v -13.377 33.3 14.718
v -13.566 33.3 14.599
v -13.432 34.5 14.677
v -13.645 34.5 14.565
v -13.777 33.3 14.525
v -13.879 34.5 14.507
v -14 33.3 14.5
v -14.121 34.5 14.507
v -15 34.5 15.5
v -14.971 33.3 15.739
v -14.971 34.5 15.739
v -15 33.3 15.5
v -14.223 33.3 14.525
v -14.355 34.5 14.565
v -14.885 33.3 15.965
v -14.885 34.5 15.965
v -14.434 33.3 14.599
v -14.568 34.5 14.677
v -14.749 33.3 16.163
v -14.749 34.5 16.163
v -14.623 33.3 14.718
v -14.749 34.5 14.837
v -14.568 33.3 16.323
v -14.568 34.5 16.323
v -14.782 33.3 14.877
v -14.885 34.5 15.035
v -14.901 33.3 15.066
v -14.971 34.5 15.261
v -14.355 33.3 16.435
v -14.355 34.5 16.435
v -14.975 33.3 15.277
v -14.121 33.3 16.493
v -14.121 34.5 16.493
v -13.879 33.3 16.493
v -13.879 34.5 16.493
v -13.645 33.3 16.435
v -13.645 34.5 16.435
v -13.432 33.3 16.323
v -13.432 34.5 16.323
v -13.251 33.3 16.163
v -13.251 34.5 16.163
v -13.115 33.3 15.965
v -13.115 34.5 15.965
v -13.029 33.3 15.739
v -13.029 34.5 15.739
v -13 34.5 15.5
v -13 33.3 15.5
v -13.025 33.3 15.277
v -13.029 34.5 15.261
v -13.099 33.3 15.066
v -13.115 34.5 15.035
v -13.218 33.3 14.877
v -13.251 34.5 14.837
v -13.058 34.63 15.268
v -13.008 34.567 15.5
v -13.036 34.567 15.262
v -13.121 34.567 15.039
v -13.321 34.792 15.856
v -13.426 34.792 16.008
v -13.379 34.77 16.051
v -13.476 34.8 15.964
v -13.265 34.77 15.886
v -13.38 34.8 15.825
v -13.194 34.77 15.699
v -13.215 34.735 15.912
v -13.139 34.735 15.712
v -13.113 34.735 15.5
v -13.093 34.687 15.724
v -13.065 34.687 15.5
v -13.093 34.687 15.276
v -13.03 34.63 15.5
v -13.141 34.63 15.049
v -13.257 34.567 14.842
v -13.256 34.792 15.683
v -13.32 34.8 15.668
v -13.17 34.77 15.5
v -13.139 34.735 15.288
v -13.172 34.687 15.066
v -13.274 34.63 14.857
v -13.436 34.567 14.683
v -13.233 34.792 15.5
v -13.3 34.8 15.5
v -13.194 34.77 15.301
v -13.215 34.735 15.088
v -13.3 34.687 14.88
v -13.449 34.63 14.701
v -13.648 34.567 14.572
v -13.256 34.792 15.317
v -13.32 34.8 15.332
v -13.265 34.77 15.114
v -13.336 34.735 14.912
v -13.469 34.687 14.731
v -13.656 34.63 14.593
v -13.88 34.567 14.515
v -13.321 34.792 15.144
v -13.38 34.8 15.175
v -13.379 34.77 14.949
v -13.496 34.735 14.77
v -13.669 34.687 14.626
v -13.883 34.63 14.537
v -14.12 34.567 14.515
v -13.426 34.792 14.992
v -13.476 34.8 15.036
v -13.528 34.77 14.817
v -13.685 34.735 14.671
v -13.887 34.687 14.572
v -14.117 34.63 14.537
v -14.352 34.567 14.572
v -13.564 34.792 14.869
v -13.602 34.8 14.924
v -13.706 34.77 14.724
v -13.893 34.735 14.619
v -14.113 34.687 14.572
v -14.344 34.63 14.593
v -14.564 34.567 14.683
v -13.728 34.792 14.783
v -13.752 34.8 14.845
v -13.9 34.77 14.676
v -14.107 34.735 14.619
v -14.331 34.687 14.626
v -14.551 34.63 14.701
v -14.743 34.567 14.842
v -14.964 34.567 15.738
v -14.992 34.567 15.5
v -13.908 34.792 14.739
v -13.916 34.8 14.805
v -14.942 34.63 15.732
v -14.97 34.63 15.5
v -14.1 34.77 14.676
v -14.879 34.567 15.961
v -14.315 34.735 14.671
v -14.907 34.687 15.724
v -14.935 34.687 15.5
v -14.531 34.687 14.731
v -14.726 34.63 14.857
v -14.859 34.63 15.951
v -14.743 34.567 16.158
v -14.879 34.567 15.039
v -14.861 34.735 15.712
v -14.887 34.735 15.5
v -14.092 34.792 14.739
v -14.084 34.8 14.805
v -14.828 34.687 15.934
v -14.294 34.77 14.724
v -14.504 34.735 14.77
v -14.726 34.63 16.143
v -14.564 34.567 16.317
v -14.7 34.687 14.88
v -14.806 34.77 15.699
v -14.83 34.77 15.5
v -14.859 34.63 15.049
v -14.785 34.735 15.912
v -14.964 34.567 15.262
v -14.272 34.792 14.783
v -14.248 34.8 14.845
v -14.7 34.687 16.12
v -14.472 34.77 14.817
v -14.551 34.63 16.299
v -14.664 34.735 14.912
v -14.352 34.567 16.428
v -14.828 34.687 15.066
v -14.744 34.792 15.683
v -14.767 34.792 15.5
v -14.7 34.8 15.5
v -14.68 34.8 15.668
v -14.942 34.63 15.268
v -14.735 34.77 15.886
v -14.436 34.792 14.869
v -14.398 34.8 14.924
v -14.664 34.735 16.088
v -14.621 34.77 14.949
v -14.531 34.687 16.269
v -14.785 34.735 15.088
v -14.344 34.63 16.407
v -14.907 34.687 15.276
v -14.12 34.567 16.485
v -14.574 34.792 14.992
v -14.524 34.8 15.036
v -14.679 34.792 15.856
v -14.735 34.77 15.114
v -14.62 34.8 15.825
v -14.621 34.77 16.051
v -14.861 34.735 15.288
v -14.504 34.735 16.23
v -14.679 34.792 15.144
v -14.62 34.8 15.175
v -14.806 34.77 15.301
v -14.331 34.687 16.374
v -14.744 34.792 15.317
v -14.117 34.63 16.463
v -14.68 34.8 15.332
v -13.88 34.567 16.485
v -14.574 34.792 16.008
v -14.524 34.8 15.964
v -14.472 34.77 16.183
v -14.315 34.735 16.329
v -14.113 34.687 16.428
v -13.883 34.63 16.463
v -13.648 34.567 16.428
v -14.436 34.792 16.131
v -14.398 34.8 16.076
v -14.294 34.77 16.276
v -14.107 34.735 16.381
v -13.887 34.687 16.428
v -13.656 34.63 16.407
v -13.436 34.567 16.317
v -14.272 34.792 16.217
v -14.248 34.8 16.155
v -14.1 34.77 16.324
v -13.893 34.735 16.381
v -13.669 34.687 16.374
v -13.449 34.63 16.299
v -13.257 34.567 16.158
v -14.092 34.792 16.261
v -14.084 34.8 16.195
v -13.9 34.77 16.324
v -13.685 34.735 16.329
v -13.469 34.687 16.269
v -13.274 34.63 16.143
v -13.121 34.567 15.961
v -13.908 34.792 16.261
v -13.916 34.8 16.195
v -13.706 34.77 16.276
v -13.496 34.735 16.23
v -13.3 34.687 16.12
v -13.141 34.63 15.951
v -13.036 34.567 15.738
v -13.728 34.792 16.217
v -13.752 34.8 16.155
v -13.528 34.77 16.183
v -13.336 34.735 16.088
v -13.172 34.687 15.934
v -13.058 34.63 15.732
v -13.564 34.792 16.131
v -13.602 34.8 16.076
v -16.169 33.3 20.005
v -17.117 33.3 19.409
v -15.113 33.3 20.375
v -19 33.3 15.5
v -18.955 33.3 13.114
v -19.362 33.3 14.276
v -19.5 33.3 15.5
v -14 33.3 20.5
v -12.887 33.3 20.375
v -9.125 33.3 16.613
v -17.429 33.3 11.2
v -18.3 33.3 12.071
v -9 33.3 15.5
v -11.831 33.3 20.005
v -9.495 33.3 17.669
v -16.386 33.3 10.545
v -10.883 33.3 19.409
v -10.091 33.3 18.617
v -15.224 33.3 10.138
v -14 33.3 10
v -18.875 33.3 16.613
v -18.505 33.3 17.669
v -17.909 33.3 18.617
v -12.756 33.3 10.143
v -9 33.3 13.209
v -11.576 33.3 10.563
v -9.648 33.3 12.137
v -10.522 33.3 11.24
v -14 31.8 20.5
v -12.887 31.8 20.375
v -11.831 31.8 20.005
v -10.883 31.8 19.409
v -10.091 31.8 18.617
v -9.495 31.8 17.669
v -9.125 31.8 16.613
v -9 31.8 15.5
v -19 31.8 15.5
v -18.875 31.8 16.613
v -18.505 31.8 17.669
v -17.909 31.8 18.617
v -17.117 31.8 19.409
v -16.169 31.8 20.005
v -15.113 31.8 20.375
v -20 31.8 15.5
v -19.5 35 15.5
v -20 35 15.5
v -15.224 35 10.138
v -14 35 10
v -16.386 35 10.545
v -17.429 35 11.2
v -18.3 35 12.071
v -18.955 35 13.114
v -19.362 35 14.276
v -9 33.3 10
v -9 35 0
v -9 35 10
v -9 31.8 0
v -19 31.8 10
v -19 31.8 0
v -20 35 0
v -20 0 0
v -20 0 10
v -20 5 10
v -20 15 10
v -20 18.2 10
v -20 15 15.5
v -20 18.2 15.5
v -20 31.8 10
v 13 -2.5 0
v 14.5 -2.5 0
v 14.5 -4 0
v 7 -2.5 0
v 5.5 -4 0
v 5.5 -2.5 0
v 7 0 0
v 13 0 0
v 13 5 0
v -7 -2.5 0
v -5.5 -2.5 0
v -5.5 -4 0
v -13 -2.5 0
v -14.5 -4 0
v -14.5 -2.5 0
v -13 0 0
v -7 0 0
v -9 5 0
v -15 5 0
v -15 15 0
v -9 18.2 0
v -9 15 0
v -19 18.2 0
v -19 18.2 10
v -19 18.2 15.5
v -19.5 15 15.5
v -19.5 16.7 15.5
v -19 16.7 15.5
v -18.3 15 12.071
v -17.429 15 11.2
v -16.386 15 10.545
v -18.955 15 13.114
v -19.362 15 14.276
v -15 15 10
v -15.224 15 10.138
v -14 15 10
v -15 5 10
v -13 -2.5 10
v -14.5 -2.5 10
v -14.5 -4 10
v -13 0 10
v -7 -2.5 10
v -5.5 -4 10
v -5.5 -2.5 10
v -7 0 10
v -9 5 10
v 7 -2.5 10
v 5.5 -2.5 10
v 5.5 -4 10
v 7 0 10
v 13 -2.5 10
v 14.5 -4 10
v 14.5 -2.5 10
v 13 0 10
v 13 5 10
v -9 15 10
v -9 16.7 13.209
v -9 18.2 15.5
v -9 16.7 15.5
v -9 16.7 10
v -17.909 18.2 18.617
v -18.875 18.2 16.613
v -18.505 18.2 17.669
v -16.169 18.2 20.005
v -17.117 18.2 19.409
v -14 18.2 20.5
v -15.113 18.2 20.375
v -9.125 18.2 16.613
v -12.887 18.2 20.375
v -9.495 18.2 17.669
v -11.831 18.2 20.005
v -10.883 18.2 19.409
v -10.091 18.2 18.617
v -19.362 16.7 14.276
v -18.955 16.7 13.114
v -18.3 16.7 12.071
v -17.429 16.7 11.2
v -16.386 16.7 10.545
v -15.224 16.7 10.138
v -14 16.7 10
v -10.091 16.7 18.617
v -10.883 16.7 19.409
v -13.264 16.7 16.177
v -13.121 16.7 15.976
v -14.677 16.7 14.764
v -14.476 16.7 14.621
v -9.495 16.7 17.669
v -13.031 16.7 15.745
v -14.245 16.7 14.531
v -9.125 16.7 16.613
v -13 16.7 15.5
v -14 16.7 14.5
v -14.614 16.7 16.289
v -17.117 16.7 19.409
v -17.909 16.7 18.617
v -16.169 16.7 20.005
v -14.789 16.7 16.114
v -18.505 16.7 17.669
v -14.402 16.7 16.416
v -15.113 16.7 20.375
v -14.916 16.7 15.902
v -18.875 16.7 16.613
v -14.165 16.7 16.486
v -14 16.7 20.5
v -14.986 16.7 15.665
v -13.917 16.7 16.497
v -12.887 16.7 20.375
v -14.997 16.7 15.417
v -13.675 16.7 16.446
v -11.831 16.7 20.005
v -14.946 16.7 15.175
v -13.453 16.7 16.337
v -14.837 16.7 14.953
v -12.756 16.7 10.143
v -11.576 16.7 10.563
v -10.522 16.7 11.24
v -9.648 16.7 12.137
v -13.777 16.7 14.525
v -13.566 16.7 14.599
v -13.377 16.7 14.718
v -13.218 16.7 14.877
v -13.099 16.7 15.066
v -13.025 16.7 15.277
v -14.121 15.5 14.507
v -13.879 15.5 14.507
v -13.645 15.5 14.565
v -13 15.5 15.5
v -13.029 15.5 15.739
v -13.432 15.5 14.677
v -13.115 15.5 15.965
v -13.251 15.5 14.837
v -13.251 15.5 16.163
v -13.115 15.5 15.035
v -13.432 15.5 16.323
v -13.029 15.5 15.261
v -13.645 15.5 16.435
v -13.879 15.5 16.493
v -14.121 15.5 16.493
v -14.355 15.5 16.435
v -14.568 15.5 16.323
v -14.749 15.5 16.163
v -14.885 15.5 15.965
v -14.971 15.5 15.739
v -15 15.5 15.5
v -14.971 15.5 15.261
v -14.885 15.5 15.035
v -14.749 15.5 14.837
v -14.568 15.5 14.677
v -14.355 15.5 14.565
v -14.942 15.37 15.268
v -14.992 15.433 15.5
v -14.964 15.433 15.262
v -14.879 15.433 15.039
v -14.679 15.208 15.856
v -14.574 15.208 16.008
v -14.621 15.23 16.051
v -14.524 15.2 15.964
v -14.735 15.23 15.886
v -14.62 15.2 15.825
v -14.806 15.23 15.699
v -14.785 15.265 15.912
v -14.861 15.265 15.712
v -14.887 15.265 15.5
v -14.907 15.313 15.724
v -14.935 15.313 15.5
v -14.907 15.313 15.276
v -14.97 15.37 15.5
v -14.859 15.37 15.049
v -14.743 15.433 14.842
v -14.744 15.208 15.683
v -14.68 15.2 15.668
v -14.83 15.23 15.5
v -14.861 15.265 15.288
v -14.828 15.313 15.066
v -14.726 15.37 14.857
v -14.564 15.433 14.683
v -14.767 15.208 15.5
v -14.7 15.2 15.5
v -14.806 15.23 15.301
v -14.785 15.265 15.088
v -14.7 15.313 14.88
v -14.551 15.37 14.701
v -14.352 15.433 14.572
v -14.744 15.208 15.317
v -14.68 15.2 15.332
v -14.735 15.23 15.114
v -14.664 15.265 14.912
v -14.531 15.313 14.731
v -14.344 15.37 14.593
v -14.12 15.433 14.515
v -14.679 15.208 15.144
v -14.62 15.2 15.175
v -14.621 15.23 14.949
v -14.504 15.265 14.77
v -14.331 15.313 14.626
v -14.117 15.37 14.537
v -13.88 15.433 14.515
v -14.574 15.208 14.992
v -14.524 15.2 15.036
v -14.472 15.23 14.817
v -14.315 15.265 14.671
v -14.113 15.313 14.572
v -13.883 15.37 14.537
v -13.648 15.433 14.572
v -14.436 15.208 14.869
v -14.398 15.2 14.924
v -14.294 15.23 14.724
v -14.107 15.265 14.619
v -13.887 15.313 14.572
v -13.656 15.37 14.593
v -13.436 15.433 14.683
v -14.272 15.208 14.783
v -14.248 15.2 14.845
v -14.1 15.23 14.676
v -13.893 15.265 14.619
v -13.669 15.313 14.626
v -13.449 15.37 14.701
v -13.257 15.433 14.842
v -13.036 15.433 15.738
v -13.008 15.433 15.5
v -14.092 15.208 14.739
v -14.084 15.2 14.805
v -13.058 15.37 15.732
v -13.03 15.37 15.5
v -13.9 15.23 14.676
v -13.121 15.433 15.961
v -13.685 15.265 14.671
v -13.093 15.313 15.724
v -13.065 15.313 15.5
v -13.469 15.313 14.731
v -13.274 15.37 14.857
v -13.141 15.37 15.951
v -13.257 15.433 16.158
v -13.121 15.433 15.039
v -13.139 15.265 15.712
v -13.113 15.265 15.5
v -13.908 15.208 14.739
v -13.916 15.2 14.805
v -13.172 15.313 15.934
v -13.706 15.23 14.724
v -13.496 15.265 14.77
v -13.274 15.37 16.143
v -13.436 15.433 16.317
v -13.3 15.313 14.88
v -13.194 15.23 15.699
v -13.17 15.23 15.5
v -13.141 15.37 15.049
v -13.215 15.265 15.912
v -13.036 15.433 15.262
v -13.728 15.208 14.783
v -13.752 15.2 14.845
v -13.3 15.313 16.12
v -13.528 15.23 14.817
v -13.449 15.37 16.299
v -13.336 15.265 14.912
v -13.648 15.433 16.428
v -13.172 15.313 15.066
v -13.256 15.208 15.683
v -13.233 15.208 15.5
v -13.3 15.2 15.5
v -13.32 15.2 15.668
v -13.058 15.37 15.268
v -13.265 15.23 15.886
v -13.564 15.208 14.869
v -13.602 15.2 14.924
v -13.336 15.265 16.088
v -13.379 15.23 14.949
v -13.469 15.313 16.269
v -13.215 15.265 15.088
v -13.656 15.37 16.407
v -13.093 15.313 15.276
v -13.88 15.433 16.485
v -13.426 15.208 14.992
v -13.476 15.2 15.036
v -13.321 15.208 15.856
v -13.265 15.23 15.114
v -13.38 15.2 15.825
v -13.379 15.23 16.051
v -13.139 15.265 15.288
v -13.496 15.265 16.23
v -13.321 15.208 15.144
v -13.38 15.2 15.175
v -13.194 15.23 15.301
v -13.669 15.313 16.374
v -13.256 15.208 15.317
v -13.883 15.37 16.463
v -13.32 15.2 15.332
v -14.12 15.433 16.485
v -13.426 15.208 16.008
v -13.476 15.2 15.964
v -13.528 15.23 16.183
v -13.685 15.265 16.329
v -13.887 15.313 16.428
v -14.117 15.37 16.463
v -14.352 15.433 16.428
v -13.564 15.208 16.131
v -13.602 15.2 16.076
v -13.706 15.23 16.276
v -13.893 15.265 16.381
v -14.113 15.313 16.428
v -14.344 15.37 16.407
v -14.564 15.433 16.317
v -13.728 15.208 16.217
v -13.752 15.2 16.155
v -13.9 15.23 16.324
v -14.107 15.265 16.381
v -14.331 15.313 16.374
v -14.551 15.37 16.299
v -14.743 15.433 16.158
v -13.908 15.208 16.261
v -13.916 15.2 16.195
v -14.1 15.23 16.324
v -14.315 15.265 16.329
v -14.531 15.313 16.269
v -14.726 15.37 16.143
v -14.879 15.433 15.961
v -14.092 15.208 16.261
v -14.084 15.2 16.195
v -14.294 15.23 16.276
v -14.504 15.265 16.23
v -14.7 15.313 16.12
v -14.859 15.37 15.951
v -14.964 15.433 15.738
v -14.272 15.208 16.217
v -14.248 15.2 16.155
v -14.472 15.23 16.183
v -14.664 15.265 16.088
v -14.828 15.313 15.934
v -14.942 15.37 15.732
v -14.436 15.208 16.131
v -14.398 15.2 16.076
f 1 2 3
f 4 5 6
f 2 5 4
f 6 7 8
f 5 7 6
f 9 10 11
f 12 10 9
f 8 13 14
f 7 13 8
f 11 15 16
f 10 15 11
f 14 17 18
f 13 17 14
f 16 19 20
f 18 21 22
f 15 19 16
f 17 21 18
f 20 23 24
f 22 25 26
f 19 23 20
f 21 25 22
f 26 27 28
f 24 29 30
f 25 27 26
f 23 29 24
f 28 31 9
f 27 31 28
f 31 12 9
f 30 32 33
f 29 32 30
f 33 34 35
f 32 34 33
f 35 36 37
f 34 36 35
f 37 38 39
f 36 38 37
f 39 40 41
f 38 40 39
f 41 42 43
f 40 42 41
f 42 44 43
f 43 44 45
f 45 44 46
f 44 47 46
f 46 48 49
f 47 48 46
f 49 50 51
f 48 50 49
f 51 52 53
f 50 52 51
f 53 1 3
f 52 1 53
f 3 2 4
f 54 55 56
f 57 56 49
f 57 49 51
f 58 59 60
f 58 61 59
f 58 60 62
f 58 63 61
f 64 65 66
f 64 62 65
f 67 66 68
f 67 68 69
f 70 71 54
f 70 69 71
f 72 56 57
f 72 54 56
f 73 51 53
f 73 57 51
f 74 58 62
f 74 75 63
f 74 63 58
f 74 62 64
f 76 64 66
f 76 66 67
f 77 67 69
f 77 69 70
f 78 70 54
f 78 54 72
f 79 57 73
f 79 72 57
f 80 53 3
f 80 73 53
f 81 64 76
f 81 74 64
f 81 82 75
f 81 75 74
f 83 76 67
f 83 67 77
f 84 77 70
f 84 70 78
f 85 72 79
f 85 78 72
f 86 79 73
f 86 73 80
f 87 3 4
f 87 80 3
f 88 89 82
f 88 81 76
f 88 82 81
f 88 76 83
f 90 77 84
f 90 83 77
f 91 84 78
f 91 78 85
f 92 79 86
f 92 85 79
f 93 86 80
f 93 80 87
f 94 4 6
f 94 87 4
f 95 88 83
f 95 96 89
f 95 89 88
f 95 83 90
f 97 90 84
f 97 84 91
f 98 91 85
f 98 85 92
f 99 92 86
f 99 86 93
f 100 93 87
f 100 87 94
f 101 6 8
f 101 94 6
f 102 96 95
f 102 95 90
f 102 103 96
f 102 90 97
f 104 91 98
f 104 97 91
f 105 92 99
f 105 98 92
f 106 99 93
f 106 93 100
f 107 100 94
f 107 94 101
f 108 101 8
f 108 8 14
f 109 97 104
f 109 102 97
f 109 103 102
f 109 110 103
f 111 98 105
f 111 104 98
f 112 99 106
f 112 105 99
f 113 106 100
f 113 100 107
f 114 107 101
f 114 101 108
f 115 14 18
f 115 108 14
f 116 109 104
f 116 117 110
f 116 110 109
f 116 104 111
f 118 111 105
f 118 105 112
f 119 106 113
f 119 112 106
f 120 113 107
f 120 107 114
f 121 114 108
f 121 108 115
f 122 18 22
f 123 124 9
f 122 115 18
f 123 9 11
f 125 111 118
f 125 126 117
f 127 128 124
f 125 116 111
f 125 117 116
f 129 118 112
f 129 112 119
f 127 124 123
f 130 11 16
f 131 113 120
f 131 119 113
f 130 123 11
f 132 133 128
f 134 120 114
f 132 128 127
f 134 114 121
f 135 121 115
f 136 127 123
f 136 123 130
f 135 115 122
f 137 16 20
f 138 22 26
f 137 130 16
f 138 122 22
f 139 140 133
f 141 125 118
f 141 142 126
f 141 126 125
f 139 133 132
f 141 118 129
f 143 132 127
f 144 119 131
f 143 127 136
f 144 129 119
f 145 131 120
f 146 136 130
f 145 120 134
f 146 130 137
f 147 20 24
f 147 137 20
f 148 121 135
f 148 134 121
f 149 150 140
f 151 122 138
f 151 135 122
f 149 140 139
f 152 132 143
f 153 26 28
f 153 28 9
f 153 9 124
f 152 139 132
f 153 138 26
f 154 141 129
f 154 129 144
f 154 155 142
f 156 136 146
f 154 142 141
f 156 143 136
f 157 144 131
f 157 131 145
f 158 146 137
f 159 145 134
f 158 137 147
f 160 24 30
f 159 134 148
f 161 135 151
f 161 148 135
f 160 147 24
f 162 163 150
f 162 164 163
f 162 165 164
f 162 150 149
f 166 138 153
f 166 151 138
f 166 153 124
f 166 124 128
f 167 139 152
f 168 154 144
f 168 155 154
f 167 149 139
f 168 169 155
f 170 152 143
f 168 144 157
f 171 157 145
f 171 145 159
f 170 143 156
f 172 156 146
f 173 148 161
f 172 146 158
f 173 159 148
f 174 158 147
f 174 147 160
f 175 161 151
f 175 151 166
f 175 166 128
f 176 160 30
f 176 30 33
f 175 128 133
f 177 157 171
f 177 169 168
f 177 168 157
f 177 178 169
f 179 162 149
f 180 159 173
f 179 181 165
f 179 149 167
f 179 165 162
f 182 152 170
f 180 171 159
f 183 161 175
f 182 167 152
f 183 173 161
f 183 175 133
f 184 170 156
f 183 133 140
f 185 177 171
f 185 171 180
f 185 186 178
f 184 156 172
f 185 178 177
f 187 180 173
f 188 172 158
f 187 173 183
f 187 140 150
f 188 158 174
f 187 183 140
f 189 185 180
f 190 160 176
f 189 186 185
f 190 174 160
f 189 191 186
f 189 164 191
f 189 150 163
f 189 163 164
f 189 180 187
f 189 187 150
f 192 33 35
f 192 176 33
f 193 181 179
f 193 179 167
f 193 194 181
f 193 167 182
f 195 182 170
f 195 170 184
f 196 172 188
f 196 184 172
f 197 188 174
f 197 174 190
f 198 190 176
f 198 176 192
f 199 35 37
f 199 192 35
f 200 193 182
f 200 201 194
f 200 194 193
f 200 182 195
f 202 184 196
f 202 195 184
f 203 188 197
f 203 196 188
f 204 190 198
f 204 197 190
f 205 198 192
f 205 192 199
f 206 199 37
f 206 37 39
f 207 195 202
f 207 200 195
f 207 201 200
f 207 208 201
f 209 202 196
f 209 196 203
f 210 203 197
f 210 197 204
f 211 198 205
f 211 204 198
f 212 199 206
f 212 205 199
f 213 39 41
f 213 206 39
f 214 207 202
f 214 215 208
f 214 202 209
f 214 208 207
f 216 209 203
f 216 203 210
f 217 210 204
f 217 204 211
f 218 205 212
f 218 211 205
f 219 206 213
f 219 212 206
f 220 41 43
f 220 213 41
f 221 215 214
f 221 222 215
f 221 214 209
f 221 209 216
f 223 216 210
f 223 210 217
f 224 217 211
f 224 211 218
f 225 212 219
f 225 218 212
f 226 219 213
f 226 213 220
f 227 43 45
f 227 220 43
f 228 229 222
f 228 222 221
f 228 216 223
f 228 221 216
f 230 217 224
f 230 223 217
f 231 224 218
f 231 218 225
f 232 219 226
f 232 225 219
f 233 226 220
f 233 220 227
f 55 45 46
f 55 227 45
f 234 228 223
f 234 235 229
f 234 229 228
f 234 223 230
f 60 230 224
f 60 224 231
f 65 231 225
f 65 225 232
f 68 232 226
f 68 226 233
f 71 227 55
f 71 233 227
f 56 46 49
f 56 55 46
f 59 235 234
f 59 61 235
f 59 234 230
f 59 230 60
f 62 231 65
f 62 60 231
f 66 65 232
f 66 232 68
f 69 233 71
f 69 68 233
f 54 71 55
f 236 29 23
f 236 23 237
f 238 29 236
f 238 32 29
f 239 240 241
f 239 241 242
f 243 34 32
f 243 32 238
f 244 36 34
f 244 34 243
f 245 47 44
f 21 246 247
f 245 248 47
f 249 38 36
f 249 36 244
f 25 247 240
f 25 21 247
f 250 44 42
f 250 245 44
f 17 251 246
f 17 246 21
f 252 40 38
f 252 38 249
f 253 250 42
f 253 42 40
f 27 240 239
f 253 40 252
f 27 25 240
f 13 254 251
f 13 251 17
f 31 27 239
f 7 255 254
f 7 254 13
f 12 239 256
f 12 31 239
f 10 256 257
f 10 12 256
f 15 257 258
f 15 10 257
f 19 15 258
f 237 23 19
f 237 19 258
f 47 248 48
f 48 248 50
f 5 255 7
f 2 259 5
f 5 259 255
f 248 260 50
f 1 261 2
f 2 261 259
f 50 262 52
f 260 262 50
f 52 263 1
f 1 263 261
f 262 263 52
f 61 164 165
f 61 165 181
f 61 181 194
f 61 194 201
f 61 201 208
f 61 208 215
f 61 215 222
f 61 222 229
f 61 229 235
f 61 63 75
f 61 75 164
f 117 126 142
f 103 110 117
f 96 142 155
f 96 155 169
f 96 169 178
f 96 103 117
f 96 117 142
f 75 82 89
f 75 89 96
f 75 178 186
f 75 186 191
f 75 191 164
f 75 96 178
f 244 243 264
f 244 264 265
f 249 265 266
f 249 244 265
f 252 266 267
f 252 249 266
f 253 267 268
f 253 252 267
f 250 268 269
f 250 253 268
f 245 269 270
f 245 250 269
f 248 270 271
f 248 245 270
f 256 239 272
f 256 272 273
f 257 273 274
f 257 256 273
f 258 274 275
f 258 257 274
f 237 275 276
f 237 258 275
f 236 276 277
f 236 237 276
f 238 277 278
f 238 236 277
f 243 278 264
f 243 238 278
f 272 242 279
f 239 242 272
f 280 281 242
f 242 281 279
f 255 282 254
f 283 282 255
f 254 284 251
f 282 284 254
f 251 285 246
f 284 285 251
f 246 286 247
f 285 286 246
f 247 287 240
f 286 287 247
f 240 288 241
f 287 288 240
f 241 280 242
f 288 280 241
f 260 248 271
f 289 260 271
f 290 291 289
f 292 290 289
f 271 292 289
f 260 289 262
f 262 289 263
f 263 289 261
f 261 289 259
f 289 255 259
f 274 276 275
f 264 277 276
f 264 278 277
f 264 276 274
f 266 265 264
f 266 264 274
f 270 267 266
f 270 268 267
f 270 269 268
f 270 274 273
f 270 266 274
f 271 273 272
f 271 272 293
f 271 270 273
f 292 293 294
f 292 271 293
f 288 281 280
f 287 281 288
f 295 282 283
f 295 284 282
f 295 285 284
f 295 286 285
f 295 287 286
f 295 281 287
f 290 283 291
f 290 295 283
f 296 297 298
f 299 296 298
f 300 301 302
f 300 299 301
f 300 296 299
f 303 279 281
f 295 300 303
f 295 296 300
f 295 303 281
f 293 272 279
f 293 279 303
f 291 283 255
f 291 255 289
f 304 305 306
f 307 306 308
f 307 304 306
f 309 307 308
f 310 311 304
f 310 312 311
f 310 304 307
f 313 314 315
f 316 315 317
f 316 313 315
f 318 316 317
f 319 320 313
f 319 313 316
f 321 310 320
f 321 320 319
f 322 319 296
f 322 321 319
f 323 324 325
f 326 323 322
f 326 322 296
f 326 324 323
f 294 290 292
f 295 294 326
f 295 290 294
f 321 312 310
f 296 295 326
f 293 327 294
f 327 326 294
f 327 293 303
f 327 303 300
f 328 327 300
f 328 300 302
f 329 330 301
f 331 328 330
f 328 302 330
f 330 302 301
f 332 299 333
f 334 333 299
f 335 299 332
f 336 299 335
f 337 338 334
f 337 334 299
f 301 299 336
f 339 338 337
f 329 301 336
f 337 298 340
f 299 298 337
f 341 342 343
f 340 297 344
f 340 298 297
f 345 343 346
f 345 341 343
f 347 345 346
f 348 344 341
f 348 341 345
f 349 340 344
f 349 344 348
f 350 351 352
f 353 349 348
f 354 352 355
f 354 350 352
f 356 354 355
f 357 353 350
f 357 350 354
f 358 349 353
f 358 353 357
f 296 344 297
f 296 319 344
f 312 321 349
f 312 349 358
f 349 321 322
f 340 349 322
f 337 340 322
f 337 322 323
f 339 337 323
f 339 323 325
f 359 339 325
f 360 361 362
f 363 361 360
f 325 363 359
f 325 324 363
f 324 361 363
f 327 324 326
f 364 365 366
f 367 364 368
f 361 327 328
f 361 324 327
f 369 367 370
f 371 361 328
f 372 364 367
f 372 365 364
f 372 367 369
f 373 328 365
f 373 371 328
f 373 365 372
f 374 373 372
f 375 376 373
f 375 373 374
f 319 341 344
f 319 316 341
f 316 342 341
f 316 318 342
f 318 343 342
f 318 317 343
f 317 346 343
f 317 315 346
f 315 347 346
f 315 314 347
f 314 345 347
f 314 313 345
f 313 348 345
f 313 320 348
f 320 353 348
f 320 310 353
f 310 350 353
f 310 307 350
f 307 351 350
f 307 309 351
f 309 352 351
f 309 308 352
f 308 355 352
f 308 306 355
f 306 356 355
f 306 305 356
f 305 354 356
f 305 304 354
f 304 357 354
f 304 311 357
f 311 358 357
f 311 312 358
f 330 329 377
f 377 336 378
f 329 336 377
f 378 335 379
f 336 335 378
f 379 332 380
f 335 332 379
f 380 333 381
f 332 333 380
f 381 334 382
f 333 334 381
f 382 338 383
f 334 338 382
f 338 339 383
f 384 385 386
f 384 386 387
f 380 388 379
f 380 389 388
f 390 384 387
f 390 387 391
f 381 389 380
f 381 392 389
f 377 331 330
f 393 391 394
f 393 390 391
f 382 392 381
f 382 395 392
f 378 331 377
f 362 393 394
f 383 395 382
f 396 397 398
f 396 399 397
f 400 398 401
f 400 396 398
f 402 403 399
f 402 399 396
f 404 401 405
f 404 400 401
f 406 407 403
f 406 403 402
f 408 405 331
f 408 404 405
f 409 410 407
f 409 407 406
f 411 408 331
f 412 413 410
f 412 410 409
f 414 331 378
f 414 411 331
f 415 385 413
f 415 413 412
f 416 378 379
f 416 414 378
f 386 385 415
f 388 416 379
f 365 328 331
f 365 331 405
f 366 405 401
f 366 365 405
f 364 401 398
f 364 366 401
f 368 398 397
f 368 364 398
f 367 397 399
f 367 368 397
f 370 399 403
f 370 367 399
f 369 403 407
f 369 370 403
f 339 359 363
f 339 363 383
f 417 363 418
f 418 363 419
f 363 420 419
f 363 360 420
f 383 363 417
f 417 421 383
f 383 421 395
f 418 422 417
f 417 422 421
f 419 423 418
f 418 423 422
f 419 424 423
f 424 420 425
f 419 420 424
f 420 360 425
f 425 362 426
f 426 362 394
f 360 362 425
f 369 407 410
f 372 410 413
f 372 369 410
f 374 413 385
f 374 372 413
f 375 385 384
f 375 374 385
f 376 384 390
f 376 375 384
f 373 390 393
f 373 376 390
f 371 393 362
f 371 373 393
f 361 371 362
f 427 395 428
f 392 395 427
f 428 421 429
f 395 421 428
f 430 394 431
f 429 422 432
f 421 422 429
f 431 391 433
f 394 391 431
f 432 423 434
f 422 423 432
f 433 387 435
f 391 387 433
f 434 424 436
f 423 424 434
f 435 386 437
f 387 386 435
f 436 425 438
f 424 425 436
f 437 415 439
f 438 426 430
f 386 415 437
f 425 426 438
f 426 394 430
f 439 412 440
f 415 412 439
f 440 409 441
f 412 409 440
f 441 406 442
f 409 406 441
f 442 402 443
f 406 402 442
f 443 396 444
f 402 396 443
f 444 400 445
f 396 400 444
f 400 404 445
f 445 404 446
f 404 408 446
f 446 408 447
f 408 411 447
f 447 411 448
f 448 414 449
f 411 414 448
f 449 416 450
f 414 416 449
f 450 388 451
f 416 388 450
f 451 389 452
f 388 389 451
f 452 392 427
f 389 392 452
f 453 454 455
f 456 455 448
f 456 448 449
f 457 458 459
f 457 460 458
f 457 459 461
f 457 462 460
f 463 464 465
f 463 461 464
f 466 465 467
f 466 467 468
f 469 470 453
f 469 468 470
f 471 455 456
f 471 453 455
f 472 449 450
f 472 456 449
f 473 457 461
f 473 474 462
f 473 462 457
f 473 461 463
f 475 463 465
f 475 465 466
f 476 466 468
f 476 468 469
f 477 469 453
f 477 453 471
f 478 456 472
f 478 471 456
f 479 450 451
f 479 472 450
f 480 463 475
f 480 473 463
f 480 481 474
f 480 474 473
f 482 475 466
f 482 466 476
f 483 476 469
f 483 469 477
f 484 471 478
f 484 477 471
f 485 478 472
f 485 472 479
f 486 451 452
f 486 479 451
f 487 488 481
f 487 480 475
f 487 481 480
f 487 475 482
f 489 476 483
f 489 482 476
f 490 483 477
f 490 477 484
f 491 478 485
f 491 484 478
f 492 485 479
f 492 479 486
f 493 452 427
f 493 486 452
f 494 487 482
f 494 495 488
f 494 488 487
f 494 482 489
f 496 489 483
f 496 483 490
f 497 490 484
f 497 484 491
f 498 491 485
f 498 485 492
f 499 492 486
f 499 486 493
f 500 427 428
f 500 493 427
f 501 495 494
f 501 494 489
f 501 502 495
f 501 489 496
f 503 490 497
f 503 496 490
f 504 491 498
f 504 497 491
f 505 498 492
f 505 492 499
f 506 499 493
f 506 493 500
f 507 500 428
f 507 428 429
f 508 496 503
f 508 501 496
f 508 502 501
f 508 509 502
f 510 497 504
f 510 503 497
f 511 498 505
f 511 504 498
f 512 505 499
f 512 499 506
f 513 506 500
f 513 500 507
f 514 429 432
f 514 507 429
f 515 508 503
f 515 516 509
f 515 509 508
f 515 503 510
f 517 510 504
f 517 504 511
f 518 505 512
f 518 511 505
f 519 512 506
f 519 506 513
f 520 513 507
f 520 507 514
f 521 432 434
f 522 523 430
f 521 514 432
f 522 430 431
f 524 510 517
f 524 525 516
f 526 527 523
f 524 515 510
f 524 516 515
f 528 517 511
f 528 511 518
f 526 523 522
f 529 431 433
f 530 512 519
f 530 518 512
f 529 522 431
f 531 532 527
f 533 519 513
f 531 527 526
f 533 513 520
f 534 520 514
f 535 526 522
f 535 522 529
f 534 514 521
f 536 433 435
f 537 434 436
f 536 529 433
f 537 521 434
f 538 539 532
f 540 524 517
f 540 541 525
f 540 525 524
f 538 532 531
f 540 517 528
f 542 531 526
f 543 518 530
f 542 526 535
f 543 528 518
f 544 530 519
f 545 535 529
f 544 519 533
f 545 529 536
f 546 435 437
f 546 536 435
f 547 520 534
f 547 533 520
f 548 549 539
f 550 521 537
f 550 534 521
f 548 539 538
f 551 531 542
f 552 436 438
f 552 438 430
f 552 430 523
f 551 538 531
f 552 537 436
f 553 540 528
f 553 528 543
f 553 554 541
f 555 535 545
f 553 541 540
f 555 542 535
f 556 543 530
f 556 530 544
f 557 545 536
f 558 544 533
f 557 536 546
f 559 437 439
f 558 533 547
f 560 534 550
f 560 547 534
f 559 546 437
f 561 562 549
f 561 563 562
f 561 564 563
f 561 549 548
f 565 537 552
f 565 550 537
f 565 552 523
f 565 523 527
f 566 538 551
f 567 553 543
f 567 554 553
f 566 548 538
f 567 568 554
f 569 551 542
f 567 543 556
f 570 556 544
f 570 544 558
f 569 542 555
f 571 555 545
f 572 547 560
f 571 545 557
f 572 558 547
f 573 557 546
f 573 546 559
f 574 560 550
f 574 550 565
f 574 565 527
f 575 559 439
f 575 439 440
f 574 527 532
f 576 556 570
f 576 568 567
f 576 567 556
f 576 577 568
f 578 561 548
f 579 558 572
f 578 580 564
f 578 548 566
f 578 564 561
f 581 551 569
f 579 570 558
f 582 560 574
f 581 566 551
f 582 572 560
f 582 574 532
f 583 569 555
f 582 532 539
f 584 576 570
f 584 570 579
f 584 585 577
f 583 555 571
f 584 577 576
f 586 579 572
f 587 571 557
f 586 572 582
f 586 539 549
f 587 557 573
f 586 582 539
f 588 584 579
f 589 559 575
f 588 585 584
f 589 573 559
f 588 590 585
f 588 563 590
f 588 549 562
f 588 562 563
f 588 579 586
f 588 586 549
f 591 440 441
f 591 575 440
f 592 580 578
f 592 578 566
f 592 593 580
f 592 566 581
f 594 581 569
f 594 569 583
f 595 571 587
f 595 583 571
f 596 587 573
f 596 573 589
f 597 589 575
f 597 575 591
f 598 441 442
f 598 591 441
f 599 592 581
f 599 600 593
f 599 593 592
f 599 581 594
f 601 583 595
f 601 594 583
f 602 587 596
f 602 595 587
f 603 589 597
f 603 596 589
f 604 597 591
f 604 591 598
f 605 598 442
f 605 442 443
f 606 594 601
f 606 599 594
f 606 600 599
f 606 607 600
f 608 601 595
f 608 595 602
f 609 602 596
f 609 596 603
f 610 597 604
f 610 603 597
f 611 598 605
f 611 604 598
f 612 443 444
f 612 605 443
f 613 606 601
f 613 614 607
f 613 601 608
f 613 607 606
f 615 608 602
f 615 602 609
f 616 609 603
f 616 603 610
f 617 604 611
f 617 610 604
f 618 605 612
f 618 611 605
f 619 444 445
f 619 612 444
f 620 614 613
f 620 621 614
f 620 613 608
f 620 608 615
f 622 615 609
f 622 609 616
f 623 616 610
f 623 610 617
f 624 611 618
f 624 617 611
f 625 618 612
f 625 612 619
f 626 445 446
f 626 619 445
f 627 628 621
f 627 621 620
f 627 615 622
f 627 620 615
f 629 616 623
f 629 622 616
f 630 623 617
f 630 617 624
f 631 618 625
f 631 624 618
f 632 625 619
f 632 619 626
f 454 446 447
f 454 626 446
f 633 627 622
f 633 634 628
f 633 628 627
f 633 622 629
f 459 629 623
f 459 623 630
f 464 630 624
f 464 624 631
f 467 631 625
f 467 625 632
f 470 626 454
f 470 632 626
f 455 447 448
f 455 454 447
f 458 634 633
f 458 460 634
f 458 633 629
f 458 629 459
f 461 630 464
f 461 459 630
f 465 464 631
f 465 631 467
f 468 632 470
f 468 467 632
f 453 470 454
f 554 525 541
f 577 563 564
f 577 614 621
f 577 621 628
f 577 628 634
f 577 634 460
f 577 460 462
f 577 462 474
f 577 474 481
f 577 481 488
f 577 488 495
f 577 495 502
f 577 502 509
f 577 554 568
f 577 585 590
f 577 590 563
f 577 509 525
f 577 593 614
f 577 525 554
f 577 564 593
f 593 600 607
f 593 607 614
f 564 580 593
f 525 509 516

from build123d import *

# Parameters (mm, degrees)
PAD_DEPTH       = 20.5
SKETCH003_W     = 34.5
SKETCH003_H     = 9
POCKET_DEPTH    = 10.5
POCKET001_DEPTH = 20
SKETCH018_W     = 13.6
SKETCH018_H     = 20.5
POCKET002_DEPTH = 10
SKETCH019_W     = 11
SKETCH019_H     = 10
POCKET003_DEPTH = 10.5
SKETCH020_W     = 6
SKETCH020_H     = 10
POCKET004_DEPTH = 10
SKETCH021_R     = 5.5
POCKET005_DEPTH = 1.7
SKETCH022_W     = 5
SKETCH022_H     = 5.5
POCKET006_DEPTH = 1.7
SKETCH023_R     = 5.5
POCKET007_DEPTH = 1.7
SKETCH024_W     = 5
SKETCH024_H     = 5.5
POCKET008_DEPTH = 1.7
SKETCH025_W     = 13.6
SKETCH025_H     = 5.500002
POCKET009_DEPTH = 1
SKETCH026_R     = 1
PAD001_DEPTH    = 1.5
FILLET_R        = 0.3
SKETCH027_R     = 1
PAD002_DEPTH    = 1.5
FILLET001_R     = 0.3


with BuildPart() as part:
    # Sketch → Pad (new body)
    with BuildSketch(Plane.XY):
        Polygon((13, 0), (13, -2.5), (14.5, -2.5), (14.5, -4), (5.5, -4), (5.5, -2.5), (7, -2.5), (7, 0), (-7, 0), (-7, -2.5), (-5.5, -2.5), (-5.5, -4), (-14.5, -4), (-14.5, -2.5), (-13, -2.5), (-13, 0), (-20, 0), (-20, 35), (-9, 35), (-9, 5), (13, 5), align=None)
    extrude(amount=PAD_DEPTH)

    # Sketch003 (on Face23 of Pad) → Pocket (cut)
    with BuildSketch(Plane.XY.offset(20.5)):
        with Locations((-2.75, 0.5)):
            Rectangle(SKETCH003_W, SKETCH003_H)
    extrude(amount=-POCKET_DEPTH, mode=Mode.SUBTRACT)

    # Sketch001 (on Face18 of Pad) → Pocket001 (cut)
    with BuildSketch(Plane(origin=(0, 35, 0), x_dir=(-1, 0, 0), z_dir=(0, 1, 0))):
        with BuildLine():
            ThreePointArc((19, 15.500002), (13.999998, 20.5), (9, 15.499998))
            Line((9, 21.5), (9, 15.499998))
            Line((9, 21.5), (20, 21.5))
            Line((20, 21.5), (20, 15.500002))
            Line((19, 15.500002), (20, 15.500002))
        make_face()
    extrude(amount=-POCKET001_DEPTH, mode=Mode.SUBTRACT)

    # Sketch018 (on Face22 of Pocket001) → Pocket002 (cut)
    with BuildSketch(Plane.YZ.offset(-9)):
        with Locations((25, 10.25)):
            Rectangle(SKETCH018_W, SKETCH018_H)
    extrude(amount=-POCKET002_DEPTH, mode=Mode.SUBTRACT)

    # Sketch019 (on Face29 of Pocket002) → Pocket003 (cut)
    with BuildSketch(Plane.XY.offset(20.5)):
        with Locations((-14.5, 10)):
            Rectangle(SKETCH019_W, SKETCH019_H)
    extrude(amount=-POCKET003_DEPTH, mode=Mode.SUBTRACT)

    # Sketch020 (on Face28 of Pocket003) → Pocket004 (cut)
    with BuildSketch(Plane.XY.offset(10)):
        with Locations((-12, 10)):
            Rectangle(SKETCH020_W, SKETCH020_H)
    extrude(amount=-POCKET004_DEPTH, mode=Mode.SUBTRACT)

    # Sketch021 (on Face15 of Pocket004) → Pocket005 (cut)
    with BuildSketch(Plane(origin=(0, 35, 0), x_dir=(-1, 0, 0), z_dir=(0, 1, 0))):
        with Locations((14, 15.5)):
            Circle(SKETCH021_R)
    extrude(amount=-POCKET005_DEPTH, mode=Mode.SUBTRACT)

    # Sketch022 (on Face15 of Pocket005) → Pocket006 (cut)
    with BuildSketch(Plane(origin=(0, 35, 0), x_dir=(-1, 0, 0), z_dir=(0, 1, 0))):
        with Locations((11.5, 12.75)):
            Rectangle(SKETCH022_W, SKETCH022_H)
    extrude(amount=-POCKET006_DEPTH, mode=Mode.SUBTRACT)

    # Sketch023 (on Face32 of Pocket006) → Pocket007 (cut)
    with BuildSketch(Plane.XZ.offset(-15)):
        with Locations((-14, 15.5)):
            Circle(SKETCH023_R)
    extrude(amount=-POCKET007_DEPTH, mode=Mode.SUBTRACT)

    # Sketch024 (on Face33 of Pocket007) → Pocket008 (cut)
    with BuildSketch(Plane.XZ.offset(-15)):
        with Locations((-11.5, 12.75)):
            Rectangle(SKETCH024_W, SKETCH024_H)
    extrude(amount=-POCKET008_DEPTH, mode=Mode.SUBTRACT)

    # Sketch025 (on Face12 of Pocket008) → Pocket009 (cut)
    with BuildSketch(Plane.YZ.offset(-19)):
        with Locations((25, 12.750001)):
            Rectangle(SKETCH025_W, SKETCH025_H)
    extrude(amount=-POCKET009_DEPTH, mode=Mode.SUBTRACT)

    # Sketch026 (on Face51 of Pocket009) → Pad001 (join)
    with BuildSketch(Plane.XZ.offset(-16.7)):
        with Locations((-14, 15.5)):
            Circle(SKETCH026_R)
    extrude(amount=PAD001_DEPTH)

    # Fillet
    fillet_edges = [part.edges().sort_by_distance(p)[0] for p in [
        (-15, 15.2, 15.5),
    ]]
    fillet(fillet_edges, radius=FILLET_R)

    # Sketch027 (on Face55 of Fillet) → Pad002 (join)
    with BuildSketch(Plane(origin=(0, 33.3, 0), x_dir=(-1, 0, 0), z_dir=(0, 1, 0))):
        with Locations((14, 15.5)):
            Circle(SKETCH027_R)
    extrude(amount=PAD002_DEPTH)

    # Fillet001
    fillet001_edges = [part.edges().sort_by_distance(p)[0] for p in [
        (-13, 34.8, 15.5),
    ]]
    fillet(fillet001_edges, radius=FILLET001_R)


solid = part.part
